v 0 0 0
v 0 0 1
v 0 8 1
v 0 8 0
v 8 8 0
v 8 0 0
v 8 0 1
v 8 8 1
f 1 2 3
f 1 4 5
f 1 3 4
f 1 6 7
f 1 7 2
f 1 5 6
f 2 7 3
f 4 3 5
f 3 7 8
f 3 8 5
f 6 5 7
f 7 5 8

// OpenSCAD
/* Warning, this is a very basic generator with a lot of approximation 
input data : [VQFN, 5HC, 8x8x1.0mm, 56, , A, C04-25447A]
generated by com.zoubworld.electronics.cad.model3d.Basic
Date : Sun Feb 15 10:50:49 CET 2026
*/

//body
color("black")
translate([0,0,0])
cube([8.0,8.0,1.0], center=false);
